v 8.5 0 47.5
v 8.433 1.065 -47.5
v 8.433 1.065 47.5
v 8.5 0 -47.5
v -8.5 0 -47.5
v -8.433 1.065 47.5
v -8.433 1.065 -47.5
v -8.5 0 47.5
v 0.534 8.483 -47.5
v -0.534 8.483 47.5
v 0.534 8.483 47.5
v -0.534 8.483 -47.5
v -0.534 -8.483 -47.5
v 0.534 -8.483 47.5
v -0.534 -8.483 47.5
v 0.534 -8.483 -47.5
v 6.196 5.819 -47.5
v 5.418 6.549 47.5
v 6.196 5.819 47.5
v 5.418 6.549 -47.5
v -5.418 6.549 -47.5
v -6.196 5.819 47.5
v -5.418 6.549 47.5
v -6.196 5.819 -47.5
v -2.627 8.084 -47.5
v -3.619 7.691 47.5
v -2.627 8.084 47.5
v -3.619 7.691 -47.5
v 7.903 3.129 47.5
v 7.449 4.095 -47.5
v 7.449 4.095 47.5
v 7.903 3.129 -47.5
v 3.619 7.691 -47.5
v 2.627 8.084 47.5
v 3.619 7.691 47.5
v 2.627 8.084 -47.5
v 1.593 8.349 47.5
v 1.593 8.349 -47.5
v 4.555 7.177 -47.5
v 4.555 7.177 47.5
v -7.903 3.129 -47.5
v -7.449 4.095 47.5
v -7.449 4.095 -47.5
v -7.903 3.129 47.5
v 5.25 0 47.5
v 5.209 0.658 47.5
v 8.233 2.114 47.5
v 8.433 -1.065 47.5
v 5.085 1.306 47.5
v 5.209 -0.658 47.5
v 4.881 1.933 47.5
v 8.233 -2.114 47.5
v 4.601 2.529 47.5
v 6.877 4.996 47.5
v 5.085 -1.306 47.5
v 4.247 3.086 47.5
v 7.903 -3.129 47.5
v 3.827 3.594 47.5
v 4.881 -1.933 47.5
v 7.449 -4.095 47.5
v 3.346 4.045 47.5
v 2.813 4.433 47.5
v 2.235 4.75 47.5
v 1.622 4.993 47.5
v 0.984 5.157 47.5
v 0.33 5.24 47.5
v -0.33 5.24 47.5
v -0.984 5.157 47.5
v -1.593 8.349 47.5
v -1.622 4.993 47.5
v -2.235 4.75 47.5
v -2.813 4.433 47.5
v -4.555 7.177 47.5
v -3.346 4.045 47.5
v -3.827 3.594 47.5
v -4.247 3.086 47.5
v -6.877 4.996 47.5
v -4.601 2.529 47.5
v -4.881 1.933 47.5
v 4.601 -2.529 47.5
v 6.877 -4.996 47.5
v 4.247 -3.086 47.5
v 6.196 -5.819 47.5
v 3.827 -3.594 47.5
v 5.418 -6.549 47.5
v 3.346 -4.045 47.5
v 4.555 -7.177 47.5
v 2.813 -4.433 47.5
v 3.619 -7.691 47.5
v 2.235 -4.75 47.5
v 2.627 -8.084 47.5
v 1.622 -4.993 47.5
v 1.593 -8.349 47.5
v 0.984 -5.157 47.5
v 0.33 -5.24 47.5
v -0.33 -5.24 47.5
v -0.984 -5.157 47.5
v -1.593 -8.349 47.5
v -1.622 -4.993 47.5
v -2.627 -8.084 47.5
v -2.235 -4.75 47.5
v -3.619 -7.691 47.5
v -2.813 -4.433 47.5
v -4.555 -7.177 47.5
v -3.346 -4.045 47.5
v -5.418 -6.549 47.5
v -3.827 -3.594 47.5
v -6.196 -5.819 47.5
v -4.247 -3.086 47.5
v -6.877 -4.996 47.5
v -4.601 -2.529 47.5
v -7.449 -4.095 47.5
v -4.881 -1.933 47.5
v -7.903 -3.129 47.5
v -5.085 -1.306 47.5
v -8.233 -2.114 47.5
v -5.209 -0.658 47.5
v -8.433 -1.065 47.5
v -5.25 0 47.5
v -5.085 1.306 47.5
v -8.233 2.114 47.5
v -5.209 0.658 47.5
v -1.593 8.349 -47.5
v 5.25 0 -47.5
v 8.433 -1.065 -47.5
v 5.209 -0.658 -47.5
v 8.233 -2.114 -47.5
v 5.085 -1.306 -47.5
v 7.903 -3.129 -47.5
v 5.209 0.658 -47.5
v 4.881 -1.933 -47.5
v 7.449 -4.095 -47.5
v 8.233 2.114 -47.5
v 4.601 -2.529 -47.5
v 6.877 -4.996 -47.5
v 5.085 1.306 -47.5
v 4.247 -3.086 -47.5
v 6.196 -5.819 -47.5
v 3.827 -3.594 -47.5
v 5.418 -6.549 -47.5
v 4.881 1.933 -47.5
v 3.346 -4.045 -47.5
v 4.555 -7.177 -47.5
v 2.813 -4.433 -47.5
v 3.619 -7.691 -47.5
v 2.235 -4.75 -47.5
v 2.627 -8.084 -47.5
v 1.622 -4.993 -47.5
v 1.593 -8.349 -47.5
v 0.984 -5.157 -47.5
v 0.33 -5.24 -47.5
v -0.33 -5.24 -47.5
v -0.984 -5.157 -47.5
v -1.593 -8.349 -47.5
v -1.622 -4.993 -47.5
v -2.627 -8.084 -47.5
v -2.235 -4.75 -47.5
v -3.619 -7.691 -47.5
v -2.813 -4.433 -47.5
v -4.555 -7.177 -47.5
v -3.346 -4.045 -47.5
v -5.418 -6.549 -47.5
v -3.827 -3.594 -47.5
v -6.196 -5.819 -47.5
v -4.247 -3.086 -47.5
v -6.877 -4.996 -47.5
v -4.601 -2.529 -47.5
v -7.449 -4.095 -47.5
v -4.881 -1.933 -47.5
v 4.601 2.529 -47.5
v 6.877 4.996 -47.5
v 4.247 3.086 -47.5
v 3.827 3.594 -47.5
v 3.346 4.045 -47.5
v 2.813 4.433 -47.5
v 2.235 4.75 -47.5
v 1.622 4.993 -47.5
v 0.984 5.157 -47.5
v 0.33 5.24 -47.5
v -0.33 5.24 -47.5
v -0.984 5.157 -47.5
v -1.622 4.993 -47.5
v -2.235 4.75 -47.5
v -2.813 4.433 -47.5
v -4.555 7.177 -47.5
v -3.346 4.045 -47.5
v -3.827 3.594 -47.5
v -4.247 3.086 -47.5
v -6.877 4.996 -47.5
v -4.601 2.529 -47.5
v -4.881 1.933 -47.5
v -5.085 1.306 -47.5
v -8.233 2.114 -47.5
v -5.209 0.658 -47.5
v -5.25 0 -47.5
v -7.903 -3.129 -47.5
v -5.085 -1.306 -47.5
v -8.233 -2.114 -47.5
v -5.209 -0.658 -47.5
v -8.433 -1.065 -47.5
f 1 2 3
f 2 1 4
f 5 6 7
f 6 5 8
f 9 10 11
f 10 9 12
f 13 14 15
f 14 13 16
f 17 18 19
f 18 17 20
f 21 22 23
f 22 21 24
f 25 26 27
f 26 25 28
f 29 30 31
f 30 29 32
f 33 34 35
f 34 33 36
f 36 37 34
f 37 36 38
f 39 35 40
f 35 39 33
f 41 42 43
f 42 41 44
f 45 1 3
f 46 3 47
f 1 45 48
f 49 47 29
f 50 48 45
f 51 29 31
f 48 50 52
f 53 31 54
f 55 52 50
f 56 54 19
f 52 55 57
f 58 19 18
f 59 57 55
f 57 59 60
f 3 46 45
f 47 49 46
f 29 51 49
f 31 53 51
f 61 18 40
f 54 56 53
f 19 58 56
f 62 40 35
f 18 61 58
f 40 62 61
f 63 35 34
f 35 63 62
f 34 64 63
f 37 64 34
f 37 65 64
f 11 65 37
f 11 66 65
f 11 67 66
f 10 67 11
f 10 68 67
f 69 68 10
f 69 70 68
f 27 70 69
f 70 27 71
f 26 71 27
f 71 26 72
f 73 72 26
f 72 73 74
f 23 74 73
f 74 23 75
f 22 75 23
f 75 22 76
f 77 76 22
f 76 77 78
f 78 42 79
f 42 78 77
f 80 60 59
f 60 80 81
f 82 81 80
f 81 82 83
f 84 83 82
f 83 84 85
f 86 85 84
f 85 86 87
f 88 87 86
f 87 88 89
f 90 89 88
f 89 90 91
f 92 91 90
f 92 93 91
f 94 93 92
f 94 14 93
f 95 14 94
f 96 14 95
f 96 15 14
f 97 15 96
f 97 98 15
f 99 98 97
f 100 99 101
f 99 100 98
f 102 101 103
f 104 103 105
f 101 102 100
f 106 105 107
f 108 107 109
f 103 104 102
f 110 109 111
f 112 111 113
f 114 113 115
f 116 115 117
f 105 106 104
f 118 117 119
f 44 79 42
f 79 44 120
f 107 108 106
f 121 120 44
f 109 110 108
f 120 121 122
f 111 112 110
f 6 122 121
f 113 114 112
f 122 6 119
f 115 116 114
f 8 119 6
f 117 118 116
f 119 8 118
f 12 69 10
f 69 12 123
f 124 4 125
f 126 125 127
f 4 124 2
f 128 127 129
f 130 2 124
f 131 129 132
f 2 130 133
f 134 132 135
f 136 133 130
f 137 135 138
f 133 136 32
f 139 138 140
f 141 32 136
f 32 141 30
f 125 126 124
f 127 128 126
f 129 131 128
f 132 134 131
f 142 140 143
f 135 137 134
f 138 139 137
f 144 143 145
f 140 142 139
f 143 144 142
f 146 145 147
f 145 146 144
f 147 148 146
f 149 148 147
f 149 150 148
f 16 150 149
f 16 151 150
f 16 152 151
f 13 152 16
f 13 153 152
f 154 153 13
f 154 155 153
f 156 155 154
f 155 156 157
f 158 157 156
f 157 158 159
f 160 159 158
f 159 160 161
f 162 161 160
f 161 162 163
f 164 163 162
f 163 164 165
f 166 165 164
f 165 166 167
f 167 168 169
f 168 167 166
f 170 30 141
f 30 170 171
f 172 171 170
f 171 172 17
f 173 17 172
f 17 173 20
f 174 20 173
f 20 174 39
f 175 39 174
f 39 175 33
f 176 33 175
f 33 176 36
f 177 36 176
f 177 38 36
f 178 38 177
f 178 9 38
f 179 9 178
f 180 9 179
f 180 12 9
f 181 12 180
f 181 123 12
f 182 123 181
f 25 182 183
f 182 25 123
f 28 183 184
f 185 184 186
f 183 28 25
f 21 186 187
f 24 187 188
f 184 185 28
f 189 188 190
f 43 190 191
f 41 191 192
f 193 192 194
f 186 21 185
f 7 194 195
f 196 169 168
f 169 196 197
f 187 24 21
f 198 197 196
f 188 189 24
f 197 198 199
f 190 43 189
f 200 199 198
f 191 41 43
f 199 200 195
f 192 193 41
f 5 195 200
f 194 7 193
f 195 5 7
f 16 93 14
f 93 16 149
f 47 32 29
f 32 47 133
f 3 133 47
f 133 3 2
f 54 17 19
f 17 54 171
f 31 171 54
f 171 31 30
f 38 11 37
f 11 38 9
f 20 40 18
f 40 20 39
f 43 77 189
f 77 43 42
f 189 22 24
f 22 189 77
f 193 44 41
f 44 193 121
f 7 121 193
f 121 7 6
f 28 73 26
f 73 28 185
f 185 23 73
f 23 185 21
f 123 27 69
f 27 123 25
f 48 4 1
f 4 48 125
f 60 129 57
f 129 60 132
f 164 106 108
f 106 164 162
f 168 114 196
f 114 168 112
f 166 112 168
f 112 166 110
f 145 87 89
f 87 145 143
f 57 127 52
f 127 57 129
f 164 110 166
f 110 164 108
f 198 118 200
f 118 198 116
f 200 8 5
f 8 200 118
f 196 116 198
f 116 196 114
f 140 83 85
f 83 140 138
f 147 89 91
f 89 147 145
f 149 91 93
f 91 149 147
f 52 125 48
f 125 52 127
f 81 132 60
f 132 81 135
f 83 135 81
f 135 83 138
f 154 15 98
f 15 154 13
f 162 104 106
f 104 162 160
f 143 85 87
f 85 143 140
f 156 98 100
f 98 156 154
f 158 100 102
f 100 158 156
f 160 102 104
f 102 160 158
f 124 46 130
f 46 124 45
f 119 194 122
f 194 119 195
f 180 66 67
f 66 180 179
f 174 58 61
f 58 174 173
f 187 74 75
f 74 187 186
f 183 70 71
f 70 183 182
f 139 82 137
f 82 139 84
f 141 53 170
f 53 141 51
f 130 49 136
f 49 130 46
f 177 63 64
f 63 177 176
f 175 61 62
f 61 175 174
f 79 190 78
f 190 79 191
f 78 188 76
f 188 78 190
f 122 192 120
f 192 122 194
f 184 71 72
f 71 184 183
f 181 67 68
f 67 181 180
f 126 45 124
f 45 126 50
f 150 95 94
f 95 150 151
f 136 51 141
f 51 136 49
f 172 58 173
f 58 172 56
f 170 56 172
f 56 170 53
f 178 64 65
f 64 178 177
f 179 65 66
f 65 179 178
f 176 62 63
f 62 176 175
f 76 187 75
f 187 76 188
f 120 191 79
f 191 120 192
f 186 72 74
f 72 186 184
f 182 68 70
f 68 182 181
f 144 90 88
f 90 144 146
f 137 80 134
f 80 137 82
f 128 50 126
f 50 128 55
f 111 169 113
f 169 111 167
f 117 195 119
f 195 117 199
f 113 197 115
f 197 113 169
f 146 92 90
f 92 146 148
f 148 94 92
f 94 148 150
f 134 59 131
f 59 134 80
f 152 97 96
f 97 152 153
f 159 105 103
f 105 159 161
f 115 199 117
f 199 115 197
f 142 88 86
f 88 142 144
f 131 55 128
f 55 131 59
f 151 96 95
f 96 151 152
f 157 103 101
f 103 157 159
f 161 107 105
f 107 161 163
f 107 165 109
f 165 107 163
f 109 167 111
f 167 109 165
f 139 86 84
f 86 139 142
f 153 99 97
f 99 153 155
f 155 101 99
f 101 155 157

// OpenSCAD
$fn = 50;


difference() {
	union() {
		translate(v = [0, 0, -47.5000000000]) {
			cylinder(h = 95, r = 8.5000000000);
		}
	}
	union() {
		translate(v = [0, 0, -100.0000000000]) {
			cylinder(h = 200, r = 5.2500000000);
		}
	}
}
